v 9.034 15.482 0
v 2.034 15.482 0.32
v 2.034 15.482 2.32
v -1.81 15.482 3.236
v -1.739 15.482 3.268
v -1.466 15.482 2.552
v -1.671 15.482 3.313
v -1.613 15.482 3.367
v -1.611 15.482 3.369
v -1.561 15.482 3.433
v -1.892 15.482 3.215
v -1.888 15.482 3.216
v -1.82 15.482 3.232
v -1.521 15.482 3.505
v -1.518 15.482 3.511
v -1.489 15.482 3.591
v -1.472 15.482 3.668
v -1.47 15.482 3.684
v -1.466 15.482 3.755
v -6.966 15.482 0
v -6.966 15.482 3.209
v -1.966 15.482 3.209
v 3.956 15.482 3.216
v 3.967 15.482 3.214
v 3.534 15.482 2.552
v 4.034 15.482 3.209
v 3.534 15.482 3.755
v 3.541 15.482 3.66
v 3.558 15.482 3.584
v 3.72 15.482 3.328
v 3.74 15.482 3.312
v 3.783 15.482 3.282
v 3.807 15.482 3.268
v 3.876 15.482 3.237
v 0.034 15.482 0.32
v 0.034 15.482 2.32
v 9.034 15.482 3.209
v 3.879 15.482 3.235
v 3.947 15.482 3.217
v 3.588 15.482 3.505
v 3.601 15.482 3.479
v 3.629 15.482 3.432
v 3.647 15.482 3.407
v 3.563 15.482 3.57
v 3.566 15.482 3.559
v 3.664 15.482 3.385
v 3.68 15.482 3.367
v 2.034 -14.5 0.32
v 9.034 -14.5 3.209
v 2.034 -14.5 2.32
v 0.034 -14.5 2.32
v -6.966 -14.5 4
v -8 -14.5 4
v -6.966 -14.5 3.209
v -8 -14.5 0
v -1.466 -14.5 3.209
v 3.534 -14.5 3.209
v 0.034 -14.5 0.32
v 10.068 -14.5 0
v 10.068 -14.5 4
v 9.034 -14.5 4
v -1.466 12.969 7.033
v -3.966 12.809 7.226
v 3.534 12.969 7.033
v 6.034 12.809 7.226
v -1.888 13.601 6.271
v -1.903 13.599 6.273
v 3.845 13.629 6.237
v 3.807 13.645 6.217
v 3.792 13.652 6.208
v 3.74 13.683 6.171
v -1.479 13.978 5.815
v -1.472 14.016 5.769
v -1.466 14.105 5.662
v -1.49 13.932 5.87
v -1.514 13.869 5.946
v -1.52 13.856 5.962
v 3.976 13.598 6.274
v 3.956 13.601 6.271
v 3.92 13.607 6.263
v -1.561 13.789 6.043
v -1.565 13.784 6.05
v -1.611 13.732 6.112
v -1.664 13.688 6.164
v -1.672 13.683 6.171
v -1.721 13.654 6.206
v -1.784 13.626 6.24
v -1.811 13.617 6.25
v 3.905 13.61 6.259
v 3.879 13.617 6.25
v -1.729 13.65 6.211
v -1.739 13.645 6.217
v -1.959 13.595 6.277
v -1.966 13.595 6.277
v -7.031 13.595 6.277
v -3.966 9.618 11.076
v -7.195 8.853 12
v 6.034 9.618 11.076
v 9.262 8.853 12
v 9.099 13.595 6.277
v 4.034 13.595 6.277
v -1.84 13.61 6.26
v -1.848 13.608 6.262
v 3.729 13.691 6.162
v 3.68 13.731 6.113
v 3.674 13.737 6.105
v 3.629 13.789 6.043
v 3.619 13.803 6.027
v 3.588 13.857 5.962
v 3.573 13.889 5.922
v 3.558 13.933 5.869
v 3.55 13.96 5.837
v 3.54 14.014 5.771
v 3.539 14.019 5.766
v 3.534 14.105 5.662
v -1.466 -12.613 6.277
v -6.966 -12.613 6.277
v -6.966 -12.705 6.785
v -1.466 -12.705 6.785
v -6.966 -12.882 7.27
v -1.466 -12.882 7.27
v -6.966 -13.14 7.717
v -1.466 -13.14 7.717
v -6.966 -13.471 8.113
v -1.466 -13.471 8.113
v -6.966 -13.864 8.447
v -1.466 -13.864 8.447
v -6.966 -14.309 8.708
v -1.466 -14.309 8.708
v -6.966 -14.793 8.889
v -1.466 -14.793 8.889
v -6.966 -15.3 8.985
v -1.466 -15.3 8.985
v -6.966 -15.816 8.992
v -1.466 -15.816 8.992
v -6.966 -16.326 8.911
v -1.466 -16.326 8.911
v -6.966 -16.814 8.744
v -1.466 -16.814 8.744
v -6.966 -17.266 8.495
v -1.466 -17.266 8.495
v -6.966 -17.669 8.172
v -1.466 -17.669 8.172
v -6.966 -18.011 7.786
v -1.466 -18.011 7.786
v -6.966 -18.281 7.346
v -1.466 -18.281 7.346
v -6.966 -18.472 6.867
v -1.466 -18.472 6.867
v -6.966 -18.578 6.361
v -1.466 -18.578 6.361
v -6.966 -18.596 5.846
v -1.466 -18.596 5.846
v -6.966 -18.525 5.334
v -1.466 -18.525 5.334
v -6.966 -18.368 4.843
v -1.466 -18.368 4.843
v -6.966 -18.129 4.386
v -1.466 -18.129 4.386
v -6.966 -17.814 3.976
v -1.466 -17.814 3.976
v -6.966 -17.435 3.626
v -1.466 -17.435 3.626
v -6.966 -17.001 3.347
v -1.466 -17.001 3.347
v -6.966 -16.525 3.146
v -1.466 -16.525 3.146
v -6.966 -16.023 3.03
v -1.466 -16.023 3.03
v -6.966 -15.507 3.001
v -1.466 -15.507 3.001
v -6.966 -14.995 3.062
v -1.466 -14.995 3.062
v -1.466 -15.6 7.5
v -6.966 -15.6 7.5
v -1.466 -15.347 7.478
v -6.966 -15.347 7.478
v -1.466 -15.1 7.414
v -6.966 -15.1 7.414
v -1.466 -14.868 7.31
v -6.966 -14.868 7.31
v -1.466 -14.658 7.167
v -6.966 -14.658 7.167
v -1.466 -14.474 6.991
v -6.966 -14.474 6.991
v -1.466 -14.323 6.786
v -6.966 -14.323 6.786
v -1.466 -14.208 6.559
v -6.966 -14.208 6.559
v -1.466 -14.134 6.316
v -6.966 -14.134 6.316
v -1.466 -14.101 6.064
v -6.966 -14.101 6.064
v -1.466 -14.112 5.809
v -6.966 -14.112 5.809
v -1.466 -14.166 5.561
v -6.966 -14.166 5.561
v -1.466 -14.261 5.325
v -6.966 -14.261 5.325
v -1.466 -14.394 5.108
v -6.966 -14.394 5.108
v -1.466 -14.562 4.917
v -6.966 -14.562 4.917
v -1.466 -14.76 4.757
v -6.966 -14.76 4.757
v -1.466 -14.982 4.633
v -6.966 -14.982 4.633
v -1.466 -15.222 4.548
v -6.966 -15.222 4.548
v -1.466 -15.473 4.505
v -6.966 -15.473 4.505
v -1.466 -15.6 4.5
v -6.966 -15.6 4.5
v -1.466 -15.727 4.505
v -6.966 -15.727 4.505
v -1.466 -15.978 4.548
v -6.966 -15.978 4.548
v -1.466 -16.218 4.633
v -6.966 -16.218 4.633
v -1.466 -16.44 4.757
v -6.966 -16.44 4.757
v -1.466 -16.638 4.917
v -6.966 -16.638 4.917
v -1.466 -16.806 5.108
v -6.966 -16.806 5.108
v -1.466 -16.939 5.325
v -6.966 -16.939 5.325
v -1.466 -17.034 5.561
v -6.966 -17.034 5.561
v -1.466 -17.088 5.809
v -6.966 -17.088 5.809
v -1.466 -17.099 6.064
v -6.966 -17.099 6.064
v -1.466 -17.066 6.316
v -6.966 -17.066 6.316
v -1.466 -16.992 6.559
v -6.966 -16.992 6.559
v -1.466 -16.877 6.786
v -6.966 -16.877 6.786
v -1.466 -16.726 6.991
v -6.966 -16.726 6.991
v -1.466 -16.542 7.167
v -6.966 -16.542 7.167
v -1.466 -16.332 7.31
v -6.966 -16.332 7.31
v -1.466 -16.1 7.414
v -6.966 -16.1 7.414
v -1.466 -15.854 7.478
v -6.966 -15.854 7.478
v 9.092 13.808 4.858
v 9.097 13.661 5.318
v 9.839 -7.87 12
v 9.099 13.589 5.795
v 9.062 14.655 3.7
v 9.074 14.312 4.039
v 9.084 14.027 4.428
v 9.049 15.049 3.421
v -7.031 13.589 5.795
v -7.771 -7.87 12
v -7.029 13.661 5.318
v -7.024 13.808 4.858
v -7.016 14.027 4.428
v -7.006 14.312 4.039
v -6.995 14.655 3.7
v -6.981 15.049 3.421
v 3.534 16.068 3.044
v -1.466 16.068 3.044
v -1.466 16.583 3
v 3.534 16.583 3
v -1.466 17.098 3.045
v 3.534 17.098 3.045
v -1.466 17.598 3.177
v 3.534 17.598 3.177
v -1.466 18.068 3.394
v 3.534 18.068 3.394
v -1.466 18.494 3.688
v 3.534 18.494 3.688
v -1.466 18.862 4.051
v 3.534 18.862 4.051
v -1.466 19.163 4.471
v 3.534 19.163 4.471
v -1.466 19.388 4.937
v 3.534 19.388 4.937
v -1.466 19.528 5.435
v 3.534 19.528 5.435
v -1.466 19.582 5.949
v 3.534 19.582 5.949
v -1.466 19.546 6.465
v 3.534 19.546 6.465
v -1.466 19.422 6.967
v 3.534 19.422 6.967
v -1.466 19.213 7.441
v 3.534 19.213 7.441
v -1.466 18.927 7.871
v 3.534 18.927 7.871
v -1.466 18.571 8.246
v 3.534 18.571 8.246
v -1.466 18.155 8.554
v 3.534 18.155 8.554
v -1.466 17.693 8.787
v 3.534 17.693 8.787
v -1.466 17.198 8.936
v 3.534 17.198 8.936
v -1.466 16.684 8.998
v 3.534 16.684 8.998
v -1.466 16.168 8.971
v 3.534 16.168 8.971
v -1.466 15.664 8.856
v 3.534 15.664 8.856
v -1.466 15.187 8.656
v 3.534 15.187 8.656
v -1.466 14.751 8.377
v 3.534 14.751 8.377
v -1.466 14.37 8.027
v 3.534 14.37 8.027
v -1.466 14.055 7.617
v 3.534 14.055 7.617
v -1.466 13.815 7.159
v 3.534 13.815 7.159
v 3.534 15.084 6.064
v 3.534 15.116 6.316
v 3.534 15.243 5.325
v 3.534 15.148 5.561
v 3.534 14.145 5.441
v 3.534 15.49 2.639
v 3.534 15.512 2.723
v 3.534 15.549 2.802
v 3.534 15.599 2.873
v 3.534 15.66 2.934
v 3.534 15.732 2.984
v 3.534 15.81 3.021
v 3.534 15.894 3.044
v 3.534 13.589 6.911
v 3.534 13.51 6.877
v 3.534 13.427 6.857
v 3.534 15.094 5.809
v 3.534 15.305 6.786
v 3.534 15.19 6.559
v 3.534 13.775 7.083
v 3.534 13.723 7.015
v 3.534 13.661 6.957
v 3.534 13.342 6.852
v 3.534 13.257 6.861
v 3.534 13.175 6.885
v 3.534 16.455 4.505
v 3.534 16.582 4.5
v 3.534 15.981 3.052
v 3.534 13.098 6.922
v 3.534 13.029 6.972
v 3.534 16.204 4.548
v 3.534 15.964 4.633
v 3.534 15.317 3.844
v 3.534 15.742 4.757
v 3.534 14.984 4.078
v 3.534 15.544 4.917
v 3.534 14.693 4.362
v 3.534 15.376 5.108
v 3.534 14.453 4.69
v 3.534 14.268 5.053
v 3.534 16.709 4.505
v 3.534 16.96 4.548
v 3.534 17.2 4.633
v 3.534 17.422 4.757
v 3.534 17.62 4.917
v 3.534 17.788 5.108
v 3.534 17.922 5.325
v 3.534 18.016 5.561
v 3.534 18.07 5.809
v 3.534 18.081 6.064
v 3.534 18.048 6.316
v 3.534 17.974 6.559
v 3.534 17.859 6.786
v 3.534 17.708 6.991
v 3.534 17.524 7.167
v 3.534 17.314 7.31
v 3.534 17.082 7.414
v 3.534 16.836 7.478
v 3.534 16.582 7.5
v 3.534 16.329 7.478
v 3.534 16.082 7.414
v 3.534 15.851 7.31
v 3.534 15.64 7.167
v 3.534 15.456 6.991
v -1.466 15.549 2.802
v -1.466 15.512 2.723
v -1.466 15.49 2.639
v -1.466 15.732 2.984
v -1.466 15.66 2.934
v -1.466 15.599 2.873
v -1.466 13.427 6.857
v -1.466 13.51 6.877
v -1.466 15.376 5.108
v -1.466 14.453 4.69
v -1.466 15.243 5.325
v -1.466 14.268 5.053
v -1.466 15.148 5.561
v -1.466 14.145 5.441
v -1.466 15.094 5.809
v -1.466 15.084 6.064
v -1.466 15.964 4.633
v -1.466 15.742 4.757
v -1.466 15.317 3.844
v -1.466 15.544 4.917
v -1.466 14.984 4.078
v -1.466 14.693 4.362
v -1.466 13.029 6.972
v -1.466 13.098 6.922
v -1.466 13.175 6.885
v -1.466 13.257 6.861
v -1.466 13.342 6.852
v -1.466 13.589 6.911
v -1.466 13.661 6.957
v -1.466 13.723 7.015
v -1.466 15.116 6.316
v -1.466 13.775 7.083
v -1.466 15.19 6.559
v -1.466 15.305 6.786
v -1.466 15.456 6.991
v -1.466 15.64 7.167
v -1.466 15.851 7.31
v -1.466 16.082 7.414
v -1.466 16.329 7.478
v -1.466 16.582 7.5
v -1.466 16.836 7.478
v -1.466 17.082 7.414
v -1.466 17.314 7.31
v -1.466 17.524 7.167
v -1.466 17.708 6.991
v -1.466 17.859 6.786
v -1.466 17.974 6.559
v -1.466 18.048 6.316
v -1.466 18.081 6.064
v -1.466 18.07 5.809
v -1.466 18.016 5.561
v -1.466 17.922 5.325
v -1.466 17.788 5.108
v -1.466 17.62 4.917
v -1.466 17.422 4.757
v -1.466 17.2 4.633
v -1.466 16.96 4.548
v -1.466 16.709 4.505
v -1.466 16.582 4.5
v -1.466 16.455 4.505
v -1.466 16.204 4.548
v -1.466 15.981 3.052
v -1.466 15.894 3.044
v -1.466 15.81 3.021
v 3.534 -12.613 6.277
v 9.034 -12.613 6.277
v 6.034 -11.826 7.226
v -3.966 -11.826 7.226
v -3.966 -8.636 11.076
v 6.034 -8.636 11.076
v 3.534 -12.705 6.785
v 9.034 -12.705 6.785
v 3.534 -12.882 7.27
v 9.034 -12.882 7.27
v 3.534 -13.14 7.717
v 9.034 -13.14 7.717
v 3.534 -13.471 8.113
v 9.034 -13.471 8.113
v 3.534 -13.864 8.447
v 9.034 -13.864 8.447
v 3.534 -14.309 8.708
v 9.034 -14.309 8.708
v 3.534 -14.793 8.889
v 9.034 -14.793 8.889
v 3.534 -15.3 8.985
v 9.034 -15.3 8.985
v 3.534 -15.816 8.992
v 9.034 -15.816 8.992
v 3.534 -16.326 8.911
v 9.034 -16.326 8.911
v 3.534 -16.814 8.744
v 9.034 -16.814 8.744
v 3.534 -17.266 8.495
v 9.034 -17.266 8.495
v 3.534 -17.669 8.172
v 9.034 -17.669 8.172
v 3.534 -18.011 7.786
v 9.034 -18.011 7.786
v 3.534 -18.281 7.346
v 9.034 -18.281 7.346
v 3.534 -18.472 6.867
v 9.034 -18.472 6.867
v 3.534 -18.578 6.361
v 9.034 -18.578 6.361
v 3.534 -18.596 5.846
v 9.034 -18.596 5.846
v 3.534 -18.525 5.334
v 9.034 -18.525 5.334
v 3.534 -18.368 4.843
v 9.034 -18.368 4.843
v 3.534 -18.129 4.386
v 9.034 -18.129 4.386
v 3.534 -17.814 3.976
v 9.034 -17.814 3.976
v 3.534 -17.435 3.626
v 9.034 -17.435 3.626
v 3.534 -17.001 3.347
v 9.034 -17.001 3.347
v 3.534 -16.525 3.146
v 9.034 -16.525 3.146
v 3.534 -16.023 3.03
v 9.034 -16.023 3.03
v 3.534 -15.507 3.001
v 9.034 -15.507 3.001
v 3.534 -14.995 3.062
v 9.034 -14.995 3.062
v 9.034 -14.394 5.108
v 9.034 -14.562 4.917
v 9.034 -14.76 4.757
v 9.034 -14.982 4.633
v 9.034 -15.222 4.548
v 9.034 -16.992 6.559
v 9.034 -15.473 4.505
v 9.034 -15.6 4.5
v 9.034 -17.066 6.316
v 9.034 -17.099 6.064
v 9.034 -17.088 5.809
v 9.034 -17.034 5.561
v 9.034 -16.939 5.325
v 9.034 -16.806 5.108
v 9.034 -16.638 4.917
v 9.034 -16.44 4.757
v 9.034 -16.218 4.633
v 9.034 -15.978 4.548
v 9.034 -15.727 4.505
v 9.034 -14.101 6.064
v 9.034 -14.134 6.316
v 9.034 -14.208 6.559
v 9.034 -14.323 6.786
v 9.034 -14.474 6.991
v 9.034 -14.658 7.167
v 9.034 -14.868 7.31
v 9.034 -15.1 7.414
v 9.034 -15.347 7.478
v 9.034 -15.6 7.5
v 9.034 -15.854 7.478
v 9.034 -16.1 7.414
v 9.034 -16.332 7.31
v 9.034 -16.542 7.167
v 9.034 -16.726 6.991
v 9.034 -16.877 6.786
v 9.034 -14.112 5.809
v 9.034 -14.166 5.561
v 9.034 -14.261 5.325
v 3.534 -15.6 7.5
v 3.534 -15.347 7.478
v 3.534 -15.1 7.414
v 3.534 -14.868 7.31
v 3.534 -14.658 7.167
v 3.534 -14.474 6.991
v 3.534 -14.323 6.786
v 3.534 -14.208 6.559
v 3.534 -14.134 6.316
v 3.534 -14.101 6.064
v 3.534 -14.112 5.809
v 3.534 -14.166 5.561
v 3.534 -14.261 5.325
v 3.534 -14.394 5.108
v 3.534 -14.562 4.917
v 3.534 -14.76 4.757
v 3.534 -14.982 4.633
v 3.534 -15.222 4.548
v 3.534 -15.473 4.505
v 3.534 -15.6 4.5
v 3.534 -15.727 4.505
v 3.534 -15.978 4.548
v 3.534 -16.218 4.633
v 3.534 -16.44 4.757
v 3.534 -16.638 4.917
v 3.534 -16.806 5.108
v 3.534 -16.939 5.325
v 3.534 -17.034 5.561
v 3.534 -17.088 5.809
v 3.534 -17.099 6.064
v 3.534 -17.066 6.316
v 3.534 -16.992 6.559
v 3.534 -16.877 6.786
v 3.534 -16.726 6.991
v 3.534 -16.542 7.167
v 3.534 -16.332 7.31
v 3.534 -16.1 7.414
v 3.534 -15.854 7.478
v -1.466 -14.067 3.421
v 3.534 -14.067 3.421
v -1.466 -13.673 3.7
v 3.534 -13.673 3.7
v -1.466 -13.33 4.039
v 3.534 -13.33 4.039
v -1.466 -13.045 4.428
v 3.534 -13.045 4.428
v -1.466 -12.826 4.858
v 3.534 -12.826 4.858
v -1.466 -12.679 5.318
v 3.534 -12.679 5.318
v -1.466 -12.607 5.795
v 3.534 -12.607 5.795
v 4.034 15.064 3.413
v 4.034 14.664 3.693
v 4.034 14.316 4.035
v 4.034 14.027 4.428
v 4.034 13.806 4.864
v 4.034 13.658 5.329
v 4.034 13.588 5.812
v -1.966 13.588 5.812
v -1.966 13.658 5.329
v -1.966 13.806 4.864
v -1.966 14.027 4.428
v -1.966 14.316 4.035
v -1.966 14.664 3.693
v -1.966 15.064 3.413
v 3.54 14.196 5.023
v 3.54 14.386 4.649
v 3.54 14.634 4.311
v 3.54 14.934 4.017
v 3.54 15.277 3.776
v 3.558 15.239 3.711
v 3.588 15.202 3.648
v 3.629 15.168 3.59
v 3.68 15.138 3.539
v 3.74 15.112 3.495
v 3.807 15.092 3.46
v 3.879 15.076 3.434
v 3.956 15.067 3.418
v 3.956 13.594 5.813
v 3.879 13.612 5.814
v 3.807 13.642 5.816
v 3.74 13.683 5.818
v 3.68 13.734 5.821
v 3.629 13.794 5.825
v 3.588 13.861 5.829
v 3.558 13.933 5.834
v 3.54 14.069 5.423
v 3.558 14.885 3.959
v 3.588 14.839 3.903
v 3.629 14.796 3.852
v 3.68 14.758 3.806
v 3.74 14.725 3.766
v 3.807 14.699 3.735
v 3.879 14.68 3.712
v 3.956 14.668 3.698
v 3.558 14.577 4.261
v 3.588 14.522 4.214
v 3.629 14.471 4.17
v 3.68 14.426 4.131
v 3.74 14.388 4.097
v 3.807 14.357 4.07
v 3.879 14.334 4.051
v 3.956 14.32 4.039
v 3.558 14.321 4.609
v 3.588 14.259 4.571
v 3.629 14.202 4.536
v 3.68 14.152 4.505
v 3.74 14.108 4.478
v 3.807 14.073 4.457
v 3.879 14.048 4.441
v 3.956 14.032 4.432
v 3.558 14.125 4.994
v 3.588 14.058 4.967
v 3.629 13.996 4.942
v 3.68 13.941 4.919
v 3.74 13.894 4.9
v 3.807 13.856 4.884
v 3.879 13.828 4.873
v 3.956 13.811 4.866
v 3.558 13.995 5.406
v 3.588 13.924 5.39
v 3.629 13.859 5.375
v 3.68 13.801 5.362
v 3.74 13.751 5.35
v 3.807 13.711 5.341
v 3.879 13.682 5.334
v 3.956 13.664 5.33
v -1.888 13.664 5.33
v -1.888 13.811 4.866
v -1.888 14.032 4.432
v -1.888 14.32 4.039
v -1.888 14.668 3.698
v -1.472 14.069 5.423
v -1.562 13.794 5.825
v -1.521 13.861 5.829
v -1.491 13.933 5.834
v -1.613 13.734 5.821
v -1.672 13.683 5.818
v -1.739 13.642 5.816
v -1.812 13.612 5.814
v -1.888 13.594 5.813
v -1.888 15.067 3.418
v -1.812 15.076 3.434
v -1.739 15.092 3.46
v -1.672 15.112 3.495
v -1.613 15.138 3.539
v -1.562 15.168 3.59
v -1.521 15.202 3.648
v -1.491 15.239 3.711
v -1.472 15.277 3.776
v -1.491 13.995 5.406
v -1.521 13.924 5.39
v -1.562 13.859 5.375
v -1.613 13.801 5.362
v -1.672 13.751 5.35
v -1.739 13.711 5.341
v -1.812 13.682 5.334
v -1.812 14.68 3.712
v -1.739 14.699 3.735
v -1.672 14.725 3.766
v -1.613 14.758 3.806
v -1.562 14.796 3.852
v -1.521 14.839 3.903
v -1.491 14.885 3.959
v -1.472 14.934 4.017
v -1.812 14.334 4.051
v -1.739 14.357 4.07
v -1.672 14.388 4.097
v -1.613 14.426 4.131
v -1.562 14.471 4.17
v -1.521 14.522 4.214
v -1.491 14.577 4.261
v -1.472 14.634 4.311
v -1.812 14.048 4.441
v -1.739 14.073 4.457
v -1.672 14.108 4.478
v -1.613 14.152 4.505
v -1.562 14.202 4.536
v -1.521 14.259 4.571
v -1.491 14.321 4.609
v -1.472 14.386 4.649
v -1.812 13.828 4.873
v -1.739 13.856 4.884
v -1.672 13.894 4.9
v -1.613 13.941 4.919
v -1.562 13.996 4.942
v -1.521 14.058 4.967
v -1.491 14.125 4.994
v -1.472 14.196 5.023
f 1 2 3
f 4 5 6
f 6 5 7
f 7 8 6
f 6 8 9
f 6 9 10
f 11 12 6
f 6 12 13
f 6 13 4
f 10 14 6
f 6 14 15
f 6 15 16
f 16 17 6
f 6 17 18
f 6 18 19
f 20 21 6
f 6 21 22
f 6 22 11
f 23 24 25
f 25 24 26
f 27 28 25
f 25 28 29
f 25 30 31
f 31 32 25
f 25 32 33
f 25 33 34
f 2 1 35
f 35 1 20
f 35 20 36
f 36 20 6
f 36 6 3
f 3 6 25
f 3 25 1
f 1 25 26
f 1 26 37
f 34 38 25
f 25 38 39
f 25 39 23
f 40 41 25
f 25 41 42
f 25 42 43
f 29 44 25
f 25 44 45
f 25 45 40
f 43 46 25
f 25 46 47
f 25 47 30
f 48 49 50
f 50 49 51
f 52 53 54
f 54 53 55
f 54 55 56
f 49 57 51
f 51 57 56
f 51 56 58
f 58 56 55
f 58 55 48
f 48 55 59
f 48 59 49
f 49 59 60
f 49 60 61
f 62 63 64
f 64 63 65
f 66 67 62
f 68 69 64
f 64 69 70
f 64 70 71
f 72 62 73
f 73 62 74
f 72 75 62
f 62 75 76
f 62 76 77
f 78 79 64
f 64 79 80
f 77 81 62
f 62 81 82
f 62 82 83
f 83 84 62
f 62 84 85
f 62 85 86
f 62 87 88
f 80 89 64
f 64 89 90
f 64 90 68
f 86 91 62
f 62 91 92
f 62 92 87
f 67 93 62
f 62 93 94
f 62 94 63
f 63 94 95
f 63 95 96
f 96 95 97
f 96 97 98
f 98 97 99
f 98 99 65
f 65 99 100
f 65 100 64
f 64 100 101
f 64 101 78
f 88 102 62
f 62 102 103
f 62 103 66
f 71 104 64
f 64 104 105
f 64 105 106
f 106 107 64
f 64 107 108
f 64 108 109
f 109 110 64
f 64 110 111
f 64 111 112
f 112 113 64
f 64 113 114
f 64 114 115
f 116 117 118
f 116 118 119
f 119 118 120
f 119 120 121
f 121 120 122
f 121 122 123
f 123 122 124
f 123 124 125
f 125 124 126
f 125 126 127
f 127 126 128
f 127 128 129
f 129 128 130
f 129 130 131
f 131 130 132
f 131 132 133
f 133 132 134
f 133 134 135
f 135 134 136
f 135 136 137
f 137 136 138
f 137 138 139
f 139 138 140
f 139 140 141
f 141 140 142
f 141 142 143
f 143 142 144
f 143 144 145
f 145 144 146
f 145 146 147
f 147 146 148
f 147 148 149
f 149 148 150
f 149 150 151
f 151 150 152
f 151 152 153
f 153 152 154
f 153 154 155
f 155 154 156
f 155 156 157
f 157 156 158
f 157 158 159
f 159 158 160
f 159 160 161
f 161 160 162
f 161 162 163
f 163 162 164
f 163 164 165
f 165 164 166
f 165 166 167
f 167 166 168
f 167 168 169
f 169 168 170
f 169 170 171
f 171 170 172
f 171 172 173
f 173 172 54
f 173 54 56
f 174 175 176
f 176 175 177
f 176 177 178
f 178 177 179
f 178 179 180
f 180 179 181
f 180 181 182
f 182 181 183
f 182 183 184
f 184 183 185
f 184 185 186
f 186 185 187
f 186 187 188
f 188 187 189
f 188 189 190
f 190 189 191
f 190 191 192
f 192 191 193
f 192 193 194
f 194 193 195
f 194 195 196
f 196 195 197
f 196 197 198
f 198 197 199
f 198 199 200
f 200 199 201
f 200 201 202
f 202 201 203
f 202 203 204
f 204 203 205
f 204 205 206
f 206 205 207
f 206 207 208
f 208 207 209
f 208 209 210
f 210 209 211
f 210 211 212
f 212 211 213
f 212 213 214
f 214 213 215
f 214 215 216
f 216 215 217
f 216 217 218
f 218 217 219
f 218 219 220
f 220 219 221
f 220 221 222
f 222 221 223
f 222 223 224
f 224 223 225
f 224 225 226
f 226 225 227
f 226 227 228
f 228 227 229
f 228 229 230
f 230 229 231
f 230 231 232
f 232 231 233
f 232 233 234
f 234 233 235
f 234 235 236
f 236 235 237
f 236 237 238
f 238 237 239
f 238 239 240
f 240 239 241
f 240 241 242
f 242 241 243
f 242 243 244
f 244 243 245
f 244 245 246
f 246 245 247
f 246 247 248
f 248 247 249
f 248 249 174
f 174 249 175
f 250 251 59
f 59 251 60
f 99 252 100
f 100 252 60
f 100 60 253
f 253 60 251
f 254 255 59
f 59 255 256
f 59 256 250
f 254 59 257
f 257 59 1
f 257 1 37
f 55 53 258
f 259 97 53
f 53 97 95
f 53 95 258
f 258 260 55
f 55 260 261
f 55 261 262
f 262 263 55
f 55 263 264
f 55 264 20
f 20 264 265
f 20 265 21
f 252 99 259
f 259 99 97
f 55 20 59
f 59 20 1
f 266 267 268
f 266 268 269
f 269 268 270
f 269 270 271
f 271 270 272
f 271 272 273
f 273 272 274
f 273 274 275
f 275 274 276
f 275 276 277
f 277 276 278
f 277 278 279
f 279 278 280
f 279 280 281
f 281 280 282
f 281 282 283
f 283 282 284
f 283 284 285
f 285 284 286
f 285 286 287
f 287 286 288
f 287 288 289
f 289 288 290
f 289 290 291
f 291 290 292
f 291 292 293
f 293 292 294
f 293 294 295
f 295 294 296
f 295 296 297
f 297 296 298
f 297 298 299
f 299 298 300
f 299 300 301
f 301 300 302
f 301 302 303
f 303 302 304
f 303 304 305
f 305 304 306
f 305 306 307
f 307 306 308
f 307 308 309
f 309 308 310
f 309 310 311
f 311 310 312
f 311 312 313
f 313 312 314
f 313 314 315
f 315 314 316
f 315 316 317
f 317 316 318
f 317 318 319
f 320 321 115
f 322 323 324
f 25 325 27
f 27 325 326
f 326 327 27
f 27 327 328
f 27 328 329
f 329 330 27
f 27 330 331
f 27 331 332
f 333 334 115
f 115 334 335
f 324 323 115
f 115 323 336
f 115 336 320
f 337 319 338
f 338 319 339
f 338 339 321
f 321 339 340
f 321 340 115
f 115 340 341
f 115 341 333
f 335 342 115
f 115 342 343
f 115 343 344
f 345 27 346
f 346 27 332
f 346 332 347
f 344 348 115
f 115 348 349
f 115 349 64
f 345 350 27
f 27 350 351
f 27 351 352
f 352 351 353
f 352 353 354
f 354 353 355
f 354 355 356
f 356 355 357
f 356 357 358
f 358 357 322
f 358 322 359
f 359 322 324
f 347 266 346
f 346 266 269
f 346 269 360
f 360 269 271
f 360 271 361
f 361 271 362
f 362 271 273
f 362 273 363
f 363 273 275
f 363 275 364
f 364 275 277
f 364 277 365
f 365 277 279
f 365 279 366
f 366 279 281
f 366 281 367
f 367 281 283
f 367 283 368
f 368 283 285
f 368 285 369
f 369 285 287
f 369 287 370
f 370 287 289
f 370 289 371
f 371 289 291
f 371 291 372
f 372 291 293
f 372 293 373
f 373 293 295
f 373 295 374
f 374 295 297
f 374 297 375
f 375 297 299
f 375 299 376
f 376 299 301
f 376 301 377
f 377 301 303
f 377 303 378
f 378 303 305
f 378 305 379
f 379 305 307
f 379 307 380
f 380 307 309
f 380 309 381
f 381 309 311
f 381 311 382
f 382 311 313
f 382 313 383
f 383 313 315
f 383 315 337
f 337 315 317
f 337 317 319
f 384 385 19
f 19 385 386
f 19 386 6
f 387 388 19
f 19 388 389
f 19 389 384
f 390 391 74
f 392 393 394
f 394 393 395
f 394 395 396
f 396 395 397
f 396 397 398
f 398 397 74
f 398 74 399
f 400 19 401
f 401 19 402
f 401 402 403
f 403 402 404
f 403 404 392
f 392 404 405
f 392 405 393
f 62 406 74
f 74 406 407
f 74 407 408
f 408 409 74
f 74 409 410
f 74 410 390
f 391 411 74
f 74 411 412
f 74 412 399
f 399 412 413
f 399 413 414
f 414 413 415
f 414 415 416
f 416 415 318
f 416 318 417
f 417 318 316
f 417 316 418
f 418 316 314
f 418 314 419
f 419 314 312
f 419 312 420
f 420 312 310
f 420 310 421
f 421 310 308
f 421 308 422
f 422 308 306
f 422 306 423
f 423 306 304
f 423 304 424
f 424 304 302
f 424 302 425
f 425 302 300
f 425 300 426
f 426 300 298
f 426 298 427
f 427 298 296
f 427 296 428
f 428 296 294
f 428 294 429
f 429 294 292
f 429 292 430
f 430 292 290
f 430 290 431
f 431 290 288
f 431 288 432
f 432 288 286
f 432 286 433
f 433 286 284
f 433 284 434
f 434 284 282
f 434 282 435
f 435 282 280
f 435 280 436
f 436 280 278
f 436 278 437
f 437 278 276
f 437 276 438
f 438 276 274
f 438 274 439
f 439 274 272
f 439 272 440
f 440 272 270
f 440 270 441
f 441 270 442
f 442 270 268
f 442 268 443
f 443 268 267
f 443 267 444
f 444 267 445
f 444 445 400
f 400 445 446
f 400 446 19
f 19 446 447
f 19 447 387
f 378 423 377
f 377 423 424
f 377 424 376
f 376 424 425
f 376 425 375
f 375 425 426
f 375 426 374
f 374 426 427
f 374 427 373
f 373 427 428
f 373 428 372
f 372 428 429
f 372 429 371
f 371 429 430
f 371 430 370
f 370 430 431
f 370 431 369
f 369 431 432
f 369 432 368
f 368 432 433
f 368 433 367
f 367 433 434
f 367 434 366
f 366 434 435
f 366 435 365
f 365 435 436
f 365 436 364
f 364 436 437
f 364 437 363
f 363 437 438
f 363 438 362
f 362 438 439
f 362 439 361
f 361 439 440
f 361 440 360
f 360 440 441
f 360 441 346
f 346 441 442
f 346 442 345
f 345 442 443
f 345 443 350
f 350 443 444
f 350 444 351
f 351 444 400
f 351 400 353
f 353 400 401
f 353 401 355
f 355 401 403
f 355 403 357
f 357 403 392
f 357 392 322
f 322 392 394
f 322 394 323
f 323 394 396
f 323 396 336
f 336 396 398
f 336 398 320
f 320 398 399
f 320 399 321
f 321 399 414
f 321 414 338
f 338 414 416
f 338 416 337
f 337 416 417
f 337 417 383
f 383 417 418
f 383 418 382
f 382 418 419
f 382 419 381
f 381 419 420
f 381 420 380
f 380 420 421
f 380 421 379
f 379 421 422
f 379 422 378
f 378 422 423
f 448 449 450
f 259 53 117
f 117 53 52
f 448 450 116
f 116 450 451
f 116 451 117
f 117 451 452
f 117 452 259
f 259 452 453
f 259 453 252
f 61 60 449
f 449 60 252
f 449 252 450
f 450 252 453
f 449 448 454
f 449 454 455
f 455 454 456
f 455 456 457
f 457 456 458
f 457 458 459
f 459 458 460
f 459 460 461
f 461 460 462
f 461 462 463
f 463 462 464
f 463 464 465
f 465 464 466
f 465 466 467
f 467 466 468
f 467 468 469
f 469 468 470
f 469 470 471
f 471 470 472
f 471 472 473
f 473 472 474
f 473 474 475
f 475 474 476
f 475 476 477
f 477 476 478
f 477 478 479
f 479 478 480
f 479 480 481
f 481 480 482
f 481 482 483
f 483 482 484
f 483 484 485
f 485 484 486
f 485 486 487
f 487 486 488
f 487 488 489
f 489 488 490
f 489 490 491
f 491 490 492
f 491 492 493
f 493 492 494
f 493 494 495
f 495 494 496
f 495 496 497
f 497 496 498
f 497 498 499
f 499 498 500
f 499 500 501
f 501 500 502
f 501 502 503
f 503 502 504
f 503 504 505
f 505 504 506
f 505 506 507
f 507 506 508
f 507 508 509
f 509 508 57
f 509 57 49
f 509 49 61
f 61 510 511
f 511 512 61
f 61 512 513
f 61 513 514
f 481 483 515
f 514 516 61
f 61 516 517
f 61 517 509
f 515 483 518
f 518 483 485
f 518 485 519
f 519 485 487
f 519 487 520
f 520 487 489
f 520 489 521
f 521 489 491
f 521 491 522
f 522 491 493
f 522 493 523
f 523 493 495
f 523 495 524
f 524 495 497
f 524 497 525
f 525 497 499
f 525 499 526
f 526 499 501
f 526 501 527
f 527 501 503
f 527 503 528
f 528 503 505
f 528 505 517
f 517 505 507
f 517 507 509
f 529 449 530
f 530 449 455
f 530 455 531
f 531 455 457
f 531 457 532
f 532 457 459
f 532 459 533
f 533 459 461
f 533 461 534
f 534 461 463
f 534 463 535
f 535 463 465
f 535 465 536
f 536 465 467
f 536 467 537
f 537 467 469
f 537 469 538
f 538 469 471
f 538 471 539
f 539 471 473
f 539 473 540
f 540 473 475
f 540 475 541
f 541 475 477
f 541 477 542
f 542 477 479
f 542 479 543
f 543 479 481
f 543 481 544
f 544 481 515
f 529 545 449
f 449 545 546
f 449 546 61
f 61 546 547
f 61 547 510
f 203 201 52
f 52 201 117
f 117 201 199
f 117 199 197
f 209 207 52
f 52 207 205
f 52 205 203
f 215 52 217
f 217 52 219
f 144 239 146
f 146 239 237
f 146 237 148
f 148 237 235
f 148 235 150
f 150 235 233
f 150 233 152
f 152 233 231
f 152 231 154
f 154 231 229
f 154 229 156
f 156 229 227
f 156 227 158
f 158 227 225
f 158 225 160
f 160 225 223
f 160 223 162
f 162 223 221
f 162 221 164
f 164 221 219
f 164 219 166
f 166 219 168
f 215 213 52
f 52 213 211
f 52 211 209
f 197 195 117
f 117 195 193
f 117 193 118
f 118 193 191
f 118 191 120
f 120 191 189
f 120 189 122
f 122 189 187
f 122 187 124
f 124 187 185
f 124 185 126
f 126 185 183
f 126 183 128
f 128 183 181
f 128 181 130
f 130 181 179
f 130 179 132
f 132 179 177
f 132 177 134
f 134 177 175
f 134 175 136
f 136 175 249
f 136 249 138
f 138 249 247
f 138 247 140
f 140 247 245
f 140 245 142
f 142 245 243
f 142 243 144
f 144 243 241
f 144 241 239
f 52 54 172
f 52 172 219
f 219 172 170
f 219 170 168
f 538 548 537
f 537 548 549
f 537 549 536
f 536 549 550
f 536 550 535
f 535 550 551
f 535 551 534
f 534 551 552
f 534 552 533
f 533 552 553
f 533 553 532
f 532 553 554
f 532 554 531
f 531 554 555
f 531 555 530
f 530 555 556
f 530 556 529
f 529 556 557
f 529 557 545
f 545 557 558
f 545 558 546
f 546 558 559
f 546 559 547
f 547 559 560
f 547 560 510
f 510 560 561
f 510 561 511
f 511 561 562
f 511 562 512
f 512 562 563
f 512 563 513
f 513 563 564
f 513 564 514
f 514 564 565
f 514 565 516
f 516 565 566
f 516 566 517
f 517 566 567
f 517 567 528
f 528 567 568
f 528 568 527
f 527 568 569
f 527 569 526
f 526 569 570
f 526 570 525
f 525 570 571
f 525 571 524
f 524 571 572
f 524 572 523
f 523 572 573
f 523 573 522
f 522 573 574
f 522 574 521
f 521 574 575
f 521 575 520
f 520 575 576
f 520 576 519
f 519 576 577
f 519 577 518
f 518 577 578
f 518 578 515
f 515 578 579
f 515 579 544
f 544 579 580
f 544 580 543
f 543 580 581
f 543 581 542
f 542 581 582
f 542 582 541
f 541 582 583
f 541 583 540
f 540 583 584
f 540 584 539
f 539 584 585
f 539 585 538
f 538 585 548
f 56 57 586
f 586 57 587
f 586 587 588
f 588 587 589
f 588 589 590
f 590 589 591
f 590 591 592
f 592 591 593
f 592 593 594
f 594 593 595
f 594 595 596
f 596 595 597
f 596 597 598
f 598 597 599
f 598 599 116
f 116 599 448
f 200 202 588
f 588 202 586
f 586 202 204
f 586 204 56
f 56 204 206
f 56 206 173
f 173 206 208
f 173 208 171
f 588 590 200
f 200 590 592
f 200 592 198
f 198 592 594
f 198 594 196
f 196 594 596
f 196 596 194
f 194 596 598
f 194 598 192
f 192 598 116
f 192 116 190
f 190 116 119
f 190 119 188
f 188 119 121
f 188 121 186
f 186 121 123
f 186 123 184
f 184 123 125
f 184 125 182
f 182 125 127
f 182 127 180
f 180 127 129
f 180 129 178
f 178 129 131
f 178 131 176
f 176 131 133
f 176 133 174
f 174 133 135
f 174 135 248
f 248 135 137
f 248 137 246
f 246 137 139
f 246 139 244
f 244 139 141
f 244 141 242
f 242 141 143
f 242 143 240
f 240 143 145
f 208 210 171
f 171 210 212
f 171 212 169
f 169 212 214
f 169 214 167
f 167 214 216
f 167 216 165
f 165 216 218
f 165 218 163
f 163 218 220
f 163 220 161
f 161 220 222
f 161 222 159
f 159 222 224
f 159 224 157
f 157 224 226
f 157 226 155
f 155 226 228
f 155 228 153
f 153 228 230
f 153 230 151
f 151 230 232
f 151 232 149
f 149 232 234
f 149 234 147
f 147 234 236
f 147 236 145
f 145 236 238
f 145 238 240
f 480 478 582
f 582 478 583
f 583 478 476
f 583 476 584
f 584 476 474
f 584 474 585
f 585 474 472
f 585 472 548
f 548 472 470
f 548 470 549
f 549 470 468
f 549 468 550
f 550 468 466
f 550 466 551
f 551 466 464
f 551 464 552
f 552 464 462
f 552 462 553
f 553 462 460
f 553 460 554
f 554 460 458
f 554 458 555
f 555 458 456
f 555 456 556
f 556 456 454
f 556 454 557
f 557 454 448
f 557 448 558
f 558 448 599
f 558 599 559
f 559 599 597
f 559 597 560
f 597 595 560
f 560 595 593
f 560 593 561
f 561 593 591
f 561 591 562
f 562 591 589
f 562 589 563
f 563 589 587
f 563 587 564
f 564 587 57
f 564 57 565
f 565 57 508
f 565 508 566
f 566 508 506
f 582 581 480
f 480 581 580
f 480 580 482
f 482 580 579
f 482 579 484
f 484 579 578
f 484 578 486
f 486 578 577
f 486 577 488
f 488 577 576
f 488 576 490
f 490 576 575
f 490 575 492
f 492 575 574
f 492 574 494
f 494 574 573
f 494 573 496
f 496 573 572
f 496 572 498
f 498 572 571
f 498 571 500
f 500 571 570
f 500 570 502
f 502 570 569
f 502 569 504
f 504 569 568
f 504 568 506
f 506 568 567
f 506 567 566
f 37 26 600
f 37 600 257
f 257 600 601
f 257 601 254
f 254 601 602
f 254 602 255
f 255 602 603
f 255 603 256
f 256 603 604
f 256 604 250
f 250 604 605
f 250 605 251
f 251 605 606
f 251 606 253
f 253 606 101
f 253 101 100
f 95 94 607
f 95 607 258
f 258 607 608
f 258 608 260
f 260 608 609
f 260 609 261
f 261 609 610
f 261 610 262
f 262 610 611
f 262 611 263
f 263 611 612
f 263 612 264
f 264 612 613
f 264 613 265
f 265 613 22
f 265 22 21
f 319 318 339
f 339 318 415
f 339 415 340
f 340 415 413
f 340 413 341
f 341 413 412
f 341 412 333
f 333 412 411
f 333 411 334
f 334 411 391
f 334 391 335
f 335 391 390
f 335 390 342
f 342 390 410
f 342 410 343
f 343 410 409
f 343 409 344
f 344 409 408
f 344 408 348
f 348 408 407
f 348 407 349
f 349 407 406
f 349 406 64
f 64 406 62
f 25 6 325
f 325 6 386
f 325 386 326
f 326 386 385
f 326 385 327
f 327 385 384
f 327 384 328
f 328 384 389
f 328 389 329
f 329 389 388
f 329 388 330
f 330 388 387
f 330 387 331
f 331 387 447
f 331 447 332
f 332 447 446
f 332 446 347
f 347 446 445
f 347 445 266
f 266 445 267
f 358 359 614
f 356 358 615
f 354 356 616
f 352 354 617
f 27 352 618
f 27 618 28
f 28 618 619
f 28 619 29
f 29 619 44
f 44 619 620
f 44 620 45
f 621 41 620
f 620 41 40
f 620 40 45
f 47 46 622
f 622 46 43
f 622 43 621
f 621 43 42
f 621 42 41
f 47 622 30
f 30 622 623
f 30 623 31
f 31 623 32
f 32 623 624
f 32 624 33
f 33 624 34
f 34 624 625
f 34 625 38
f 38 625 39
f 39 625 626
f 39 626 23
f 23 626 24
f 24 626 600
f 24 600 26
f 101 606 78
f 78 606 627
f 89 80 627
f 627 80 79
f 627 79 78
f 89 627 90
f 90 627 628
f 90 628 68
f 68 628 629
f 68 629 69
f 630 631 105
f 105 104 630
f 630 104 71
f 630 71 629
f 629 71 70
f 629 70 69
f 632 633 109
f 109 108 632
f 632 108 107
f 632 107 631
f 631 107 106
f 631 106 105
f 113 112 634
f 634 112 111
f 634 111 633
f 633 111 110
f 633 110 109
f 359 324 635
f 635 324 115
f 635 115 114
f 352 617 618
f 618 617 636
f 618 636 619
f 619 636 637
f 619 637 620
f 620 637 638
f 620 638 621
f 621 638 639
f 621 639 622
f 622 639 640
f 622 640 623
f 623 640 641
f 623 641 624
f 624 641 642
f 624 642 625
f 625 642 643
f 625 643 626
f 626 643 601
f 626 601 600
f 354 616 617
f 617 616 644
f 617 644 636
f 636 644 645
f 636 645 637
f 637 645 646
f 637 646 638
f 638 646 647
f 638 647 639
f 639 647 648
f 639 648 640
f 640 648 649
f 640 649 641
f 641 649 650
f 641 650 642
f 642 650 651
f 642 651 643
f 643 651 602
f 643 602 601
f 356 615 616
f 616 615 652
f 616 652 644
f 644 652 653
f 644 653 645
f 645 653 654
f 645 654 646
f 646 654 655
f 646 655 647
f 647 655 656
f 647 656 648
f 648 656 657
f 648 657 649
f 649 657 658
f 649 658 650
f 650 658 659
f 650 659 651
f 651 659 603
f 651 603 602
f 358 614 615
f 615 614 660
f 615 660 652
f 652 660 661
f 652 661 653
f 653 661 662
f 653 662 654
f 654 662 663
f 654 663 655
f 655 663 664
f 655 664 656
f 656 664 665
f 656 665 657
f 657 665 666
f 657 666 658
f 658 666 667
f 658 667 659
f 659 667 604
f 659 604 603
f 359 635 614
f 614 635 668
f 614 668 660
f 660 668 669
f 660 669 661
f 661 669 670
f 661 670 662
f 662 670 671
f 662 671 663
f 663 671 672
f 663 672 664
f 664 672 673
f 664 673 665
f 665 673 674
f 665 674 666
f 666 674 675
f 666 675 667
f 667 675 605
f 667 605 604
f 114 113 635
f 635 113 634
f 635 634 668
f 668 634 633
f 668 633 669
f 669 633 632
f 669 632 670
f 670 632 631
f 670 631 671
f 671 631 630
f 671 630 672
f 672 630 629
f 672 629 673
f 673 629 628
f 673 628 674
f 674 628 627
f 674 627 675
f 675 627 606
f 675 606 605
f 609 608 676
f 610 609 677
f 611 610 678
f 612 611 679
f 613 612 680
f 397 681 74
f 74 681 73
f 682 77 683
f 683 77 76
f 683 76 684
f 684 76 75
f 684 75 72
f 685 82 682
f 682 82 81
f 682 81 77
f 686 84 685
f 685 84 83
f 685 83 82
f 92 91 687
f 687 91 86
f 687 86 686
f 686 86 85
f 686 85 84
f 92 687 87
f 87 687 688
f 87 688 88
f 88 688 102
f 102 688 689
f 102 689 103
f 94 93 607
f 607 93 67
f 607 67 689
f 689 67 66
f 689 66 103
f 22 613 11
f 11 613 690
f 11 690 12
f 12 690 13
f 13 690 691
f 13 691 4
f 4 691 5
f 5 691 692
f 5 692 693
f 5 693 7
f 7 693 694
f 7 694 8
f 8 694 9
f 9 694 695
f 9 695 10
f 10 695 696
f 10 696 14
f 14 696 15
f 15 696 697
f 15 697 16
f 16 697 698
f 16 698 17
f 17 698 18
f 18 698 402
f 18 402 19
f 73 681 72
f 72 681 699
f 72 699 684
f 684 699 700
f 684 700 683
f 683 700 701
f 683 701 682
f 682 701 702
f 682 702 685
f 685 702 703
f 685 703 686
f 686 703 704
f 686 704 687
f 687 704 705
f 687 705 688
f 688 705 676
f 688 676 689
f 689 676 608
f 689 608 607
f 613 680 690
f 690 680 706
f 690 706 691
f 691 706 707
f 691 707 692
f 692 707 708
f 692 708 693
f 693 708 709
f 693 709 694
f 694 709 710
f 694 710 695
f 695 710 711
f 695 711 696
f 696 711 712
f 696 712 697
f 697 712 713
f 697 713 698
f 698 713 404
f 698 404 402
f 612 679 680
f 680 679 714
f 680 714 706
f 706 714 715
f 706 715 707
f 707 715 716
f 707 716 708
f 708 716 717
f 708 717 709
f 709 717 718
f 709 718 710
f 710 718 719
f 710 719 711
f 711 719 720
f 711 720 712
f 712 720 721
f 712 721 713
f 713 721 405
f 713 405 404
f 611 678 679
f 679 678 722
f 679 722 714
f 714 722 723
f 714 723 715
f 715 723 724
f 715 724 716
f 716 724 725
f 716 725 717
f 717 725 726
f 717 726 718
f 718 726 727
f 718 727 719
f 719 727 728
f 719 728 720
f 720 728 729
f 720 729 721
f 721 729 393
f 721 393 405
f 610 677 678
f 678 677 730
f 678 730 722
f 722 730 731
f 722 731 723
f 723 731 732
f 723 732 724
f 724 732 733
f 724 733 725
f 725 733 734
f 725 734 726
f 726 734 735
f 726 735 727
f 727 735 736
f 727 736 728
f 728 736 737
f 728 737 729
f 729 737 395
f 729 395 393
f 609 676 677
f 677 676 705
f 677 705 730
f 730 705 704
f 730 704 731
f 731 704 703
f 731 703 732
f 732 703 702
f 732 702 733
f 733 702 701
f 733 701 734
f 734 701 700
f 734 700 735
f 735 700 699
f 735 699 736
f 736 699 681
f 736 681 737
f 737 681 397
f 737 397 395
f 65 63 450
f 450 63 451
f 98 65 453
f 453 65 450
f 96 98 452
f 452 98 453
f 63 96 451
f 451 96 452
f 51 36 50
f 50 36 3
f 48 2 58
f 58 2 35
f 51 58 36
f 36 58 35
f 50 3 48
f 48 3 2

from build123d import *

# Parameters (mm, degrees)
BOSS_EXTRUDE2_DEPTH            = 12
CUT_EXTRUDE2_DEPTH             = 22.571014648492383
CUT_EXTRUDE2_DEPTH_BACK        = 22.571014648492383
SKETCH17_R                     = 3.0000000000000298
SKETCH17_R_2                   = 1.5
BOSS_EXTRUDE3_DEPTH            = 2.5
CUT_EXTRUDE3_DEPTH             = 25.679395227729078
CUT_EXTRUDE3_DEPTH_BACK        = 25.679395227729078
SKETCH19_R                     = 1.4999999999999996
BOSS_EXTRUDE4_DEPTH            = 8
SKETCH19_3_R                   = 3.0000000000000004
CUT_EXTRUDE4_DEPTH             = 2.5
CUT_EXTRUDE5_START             = 10
SKETCH20_R                     = 2.9999999999999996
CUT_EXTRUDE5_DEPTH             = 10
SKETCH21_R                     = 2.999999999999999
CUT_EXTRUDE6_DEPTH             = 10
FILLET6_R                      = 0.5000000000000004
FILLET7_R                      = 0.5000000000000004
FILLET8_R                      = 0.5000000000000004
CUT_EXTRUDE7_REACH             = 27.076
CUT_EXTRUDE7_DIRECTION_2_REACH = 27.076
CUT_EXTRUDE8_DEPTH             = 1


with BuildPart() as part:
    # Sketch1 → Boss-Extrude2 (new body)
    with BuildSketch(Plane.XY):
        Polygon((-7.999999999999995, -14.500000000000002), (-6.966131724806635, 15.482179980607619), (9.033868275193369, 15.482179980607619), (10.067736550386755, -14.500000000000002), align=None)
    extrude(amount=BOSS_EXTRUDE2_DEPTH)

    # Sketch16 → Cut-Extrude2 (cut, two sides: drawn at the far end of the back side and taken through both)
    with BuildSketch(Plane(origin=(1.0338682751933665, 0, 0), x_dir=(0, 0, -1), z_dir=(1, 0, 0)).offset(-CUT_EXTRUDE2_DEPTH_BACK)):
        Polygon((-12, 8.852541981440545), (-4, 15.482179980607619), (-12, 15.482179980607619), align=None)
    extrude(amount=CUT_EXTRUDE2_DEPTH + CUT_EXTRUDE2_DEPTH_BACK, mode=Mode.SUBTRACT)

    # Sketch17 → Boss-Extrude3 (add, symmetric)
    with BuildSketch(Plane(origin=(1.0338682751933665, 0, 0), x_dir=(0, 0, -1), z_dir=(1, 0, 0))):
        with Locations((-6.000000000000029, 16.582179980607627)):
            Circle(SKETCH17_R)
        with Locations((-6.000000000000001, 16.58217998060762)):
            Circle(SKETCH17_R_2, mode=Mode.SUBTRACT)
    extrude(amount=BOSS_EXTRUDE3_DEPTH, both=True)

    # Sketch18 → Cut-Extrude3 (cut, two sides: drawn at the far end of the back side and taken through both)
    with BuildSketch(Plane(origin=(1.0338682751933665, 0, 0), x_dir=(0, 0, -1), z_dir=(1, 0, 0)).offset(-CUT_EXTRUDE3_DEPTH_BACK)):
        Polygon((-12, -14.500000000000002), (-4, -14.500000000000002), (-12, -7.870362000832929), align=None)
    extrude(amount=CUT_EXTRUDE3_DEPTH + CUT_EXTRUDE3_DEPTH_BACK, mode=Mode.SUBTRACT)

    # Sketch19 → Boss-Extrude4 (add, symmetric)
    with BuildSketch(Plane(origin=(1.0338682751933665, 0, 0), x_dir=(0, 0, -1), z_dir=(1, 0, 0))):
        with BuildLine():
            ThreePointArc((-8.791057147390573, -14.500000000000002), (-6.5598341530436866, -18.547301430306355), (-2.9999999999999996, -15.600000000000003))
            ThreePointArc((-2.9999999999999996, -15.600000000000003), (-3.0526985696936495, -15.040165846956317), (-3.2089428526094275, -14.500000000000002))
            ThreePointArc((-3.2089428526094275, -14.500000000000002), (-6, -12.600000000000003), (-8.791057147390573, -14.500000000000002))
        make_face()
        with Locations((-6, -15.600000000000003)):
            Circle(SKETCH19_R, mode=Mode.SUBTRACT)
    extrude(amount=BOSS_EXTRUDE4_DEPTH, both=True)

    # Sketch19<3> → Cut-Extrude4 (cut, symmetric)
    with BuildSketch(Plane(origin=(1.0338682751933665, 0, 0), x_dir=(0, 0, -1), z_dir=(1, 0, 0))):
        with Locations((-6, -15.600000000000003)):
            Circle(SKETCH19_3_R)
    extrude(amount=CUT_EXTRUDE4_DEPTH, both=True, mode=Mode.SUBTRACT)

    # Sketch20 → Cut-Extrude5 (cut)
    with BuildSketch(Plane(origin=(3.5338682751933668, 0, 0), x_dir=(0, 0, -1), z_dir=(1, 0, 0)).offset(CUT_EXTRUDE5_START)):
        with Locations((-6, 16.58217998060762)):
            Circle(SKETCH20_R)
    extrude(amount=-CUT_EXTRUDE5_DEPTH, mode=Mode.SUBTRACT)

    # Sketch21 → Cut-Extrude6 (cut)
    with BuildSketch(Plane.ZY.offset(1.4661317248066335)):
        with Locations((6, 16.58217998060762)):
            Circle(SKETCH21_R)
    extrude(amount=CUT_EXTRUDE6_DEPTH, mode=Mode.SUBTRACT)

    # Fillet6
    fillet6_edges = [part.edges().sort_by_distance(p)[0] for p in [
        (1.0338682751933665, 13.59501804601977, 6.277242811538059),
    ]]
    fillet(fillet6_edges, radius=FILLET6_R)

    # Fillet7
    fillet7_edges = [part.edges().sort_by_distance(p)[0] for p in [
        (1.0338682751933665, 15.482179980607619, 3.208942852609428),
    ]]
    fillet(fillet7_edges, radius=FILLET7_R)

    # Fillet8
    fillet8_edges = [part.edges().sort_by_distance(p)[0] for p in [
        (3.5338682751933668, 14.026824950601753, 4.428325520146199),
        (-1.4661317248066335, 14.026824950601755, 4.428325520146199),
    ]]
    fillet(fillet8_edges, radius=FILLET8_R)

    # Cut-Extrude7: up to this plane
    cut_extrude7_end = Plane(origin=(-7.999999999999995, -10.561614048947142, 8.752459728929596), z_dir=(0, 0.769971126082772, -0.6380787294674758))
    # Sketch24 → Cut-Extrude7 (cut, up to the surface)
    with BuildSketch(Plane(origin=(0, 0, 0), x_dir=(1, 0, 0), z_dir=(0, 1, 0)), mode=Mode.PRIVATE) as cut_extrude7_sk1:
        Polygon((-3.966131724806632, -7.226179018286816), (-3.966131724806632, -11.076034648700675), (6.0338682751933685, -11.076034648700674), (6.0338682751933685, -7.226179018286816), align=None)
    cut_extrude7_tool1 = split(extrude(cut_extrude7_sk1.sketch, amount=-CUT_EXTRUDE7_REACH, mode=Mode.PRIVATE), bisect_by=cut_extrude7_end, keep=Keep.BOTH, mode=Mode.PRIVATE)
    add(cut_extrude7_tool1.solids().sort_by_distance((1.033868, 0, 9.151107))[0], mode=Mode.SUBTRACT)

    # Cut-Extrude7 direction 2: up to this plane
    cut_extrude7_direction_2_end = Plane(origin=(-7.999999999999995, 11.14390488681771, 9.23500691209379), z_dir=(0, 0.769971126082772, 0.6380787294674758))
    # Sketch24 → Cut-Extrude7 direction 2 (cut, up to the surface)
    with BuildSketch(Plane(origin=(0, 0, 0), x_dir=(1, 0, 0), z_dir=(0, 1, 0)), mode=Mode.PRIVATE) as cut_extrude7_direction_2_sk1:
        Polygon((-3.966131724806632, -7.226179018286816), (-3.966131724806632, -11.076034648700675), (6.0338682751933685, -11.076034648700674), (6.0338682751933685, -7.226179018286816), align=None)
    cut_extrude7_direction_2_tool1 = split(extrude(cut_extrude7_direction_2_sk1.sketch, amount=CUT_EXTRUDE7_DIRECTION_2_REACH, mode=Mode.PRIVATE), bisect_by=cut_extrude7_direction_2_end, keep=Keep.BOTH, mode=Mode.PRIVATE)
    add(cut_extrude7_direction_2_tool1.solids().sort_by_distance((1.033868, 0, 9.151107))[0], mode=Mode.SUBTRACT)

    # Sketch25 → Cut-Extrude8 (cut, symmetric)
    with BuildSketch(Plane(origin=(1.0338682751933665, 0, 0), x_dir=(0, 0, -1), z_dir=(1, 0, 0))):
        Polygon((-2.32, -14.500000000000002), (-0.31999999999999995, -14.500000000000002), (-0.31999999999999995, -14.381743641915115), (-0.31999999999999995, 15.883160410365697), (-2.32, 15.883160410365697), (-2.32, -14.381743641915115), align=None)
    extrude(amount=CUT_EXTRUDE8_DEPTH, both=True, mode=Mode.SUBTRACT)


solid = part.part
